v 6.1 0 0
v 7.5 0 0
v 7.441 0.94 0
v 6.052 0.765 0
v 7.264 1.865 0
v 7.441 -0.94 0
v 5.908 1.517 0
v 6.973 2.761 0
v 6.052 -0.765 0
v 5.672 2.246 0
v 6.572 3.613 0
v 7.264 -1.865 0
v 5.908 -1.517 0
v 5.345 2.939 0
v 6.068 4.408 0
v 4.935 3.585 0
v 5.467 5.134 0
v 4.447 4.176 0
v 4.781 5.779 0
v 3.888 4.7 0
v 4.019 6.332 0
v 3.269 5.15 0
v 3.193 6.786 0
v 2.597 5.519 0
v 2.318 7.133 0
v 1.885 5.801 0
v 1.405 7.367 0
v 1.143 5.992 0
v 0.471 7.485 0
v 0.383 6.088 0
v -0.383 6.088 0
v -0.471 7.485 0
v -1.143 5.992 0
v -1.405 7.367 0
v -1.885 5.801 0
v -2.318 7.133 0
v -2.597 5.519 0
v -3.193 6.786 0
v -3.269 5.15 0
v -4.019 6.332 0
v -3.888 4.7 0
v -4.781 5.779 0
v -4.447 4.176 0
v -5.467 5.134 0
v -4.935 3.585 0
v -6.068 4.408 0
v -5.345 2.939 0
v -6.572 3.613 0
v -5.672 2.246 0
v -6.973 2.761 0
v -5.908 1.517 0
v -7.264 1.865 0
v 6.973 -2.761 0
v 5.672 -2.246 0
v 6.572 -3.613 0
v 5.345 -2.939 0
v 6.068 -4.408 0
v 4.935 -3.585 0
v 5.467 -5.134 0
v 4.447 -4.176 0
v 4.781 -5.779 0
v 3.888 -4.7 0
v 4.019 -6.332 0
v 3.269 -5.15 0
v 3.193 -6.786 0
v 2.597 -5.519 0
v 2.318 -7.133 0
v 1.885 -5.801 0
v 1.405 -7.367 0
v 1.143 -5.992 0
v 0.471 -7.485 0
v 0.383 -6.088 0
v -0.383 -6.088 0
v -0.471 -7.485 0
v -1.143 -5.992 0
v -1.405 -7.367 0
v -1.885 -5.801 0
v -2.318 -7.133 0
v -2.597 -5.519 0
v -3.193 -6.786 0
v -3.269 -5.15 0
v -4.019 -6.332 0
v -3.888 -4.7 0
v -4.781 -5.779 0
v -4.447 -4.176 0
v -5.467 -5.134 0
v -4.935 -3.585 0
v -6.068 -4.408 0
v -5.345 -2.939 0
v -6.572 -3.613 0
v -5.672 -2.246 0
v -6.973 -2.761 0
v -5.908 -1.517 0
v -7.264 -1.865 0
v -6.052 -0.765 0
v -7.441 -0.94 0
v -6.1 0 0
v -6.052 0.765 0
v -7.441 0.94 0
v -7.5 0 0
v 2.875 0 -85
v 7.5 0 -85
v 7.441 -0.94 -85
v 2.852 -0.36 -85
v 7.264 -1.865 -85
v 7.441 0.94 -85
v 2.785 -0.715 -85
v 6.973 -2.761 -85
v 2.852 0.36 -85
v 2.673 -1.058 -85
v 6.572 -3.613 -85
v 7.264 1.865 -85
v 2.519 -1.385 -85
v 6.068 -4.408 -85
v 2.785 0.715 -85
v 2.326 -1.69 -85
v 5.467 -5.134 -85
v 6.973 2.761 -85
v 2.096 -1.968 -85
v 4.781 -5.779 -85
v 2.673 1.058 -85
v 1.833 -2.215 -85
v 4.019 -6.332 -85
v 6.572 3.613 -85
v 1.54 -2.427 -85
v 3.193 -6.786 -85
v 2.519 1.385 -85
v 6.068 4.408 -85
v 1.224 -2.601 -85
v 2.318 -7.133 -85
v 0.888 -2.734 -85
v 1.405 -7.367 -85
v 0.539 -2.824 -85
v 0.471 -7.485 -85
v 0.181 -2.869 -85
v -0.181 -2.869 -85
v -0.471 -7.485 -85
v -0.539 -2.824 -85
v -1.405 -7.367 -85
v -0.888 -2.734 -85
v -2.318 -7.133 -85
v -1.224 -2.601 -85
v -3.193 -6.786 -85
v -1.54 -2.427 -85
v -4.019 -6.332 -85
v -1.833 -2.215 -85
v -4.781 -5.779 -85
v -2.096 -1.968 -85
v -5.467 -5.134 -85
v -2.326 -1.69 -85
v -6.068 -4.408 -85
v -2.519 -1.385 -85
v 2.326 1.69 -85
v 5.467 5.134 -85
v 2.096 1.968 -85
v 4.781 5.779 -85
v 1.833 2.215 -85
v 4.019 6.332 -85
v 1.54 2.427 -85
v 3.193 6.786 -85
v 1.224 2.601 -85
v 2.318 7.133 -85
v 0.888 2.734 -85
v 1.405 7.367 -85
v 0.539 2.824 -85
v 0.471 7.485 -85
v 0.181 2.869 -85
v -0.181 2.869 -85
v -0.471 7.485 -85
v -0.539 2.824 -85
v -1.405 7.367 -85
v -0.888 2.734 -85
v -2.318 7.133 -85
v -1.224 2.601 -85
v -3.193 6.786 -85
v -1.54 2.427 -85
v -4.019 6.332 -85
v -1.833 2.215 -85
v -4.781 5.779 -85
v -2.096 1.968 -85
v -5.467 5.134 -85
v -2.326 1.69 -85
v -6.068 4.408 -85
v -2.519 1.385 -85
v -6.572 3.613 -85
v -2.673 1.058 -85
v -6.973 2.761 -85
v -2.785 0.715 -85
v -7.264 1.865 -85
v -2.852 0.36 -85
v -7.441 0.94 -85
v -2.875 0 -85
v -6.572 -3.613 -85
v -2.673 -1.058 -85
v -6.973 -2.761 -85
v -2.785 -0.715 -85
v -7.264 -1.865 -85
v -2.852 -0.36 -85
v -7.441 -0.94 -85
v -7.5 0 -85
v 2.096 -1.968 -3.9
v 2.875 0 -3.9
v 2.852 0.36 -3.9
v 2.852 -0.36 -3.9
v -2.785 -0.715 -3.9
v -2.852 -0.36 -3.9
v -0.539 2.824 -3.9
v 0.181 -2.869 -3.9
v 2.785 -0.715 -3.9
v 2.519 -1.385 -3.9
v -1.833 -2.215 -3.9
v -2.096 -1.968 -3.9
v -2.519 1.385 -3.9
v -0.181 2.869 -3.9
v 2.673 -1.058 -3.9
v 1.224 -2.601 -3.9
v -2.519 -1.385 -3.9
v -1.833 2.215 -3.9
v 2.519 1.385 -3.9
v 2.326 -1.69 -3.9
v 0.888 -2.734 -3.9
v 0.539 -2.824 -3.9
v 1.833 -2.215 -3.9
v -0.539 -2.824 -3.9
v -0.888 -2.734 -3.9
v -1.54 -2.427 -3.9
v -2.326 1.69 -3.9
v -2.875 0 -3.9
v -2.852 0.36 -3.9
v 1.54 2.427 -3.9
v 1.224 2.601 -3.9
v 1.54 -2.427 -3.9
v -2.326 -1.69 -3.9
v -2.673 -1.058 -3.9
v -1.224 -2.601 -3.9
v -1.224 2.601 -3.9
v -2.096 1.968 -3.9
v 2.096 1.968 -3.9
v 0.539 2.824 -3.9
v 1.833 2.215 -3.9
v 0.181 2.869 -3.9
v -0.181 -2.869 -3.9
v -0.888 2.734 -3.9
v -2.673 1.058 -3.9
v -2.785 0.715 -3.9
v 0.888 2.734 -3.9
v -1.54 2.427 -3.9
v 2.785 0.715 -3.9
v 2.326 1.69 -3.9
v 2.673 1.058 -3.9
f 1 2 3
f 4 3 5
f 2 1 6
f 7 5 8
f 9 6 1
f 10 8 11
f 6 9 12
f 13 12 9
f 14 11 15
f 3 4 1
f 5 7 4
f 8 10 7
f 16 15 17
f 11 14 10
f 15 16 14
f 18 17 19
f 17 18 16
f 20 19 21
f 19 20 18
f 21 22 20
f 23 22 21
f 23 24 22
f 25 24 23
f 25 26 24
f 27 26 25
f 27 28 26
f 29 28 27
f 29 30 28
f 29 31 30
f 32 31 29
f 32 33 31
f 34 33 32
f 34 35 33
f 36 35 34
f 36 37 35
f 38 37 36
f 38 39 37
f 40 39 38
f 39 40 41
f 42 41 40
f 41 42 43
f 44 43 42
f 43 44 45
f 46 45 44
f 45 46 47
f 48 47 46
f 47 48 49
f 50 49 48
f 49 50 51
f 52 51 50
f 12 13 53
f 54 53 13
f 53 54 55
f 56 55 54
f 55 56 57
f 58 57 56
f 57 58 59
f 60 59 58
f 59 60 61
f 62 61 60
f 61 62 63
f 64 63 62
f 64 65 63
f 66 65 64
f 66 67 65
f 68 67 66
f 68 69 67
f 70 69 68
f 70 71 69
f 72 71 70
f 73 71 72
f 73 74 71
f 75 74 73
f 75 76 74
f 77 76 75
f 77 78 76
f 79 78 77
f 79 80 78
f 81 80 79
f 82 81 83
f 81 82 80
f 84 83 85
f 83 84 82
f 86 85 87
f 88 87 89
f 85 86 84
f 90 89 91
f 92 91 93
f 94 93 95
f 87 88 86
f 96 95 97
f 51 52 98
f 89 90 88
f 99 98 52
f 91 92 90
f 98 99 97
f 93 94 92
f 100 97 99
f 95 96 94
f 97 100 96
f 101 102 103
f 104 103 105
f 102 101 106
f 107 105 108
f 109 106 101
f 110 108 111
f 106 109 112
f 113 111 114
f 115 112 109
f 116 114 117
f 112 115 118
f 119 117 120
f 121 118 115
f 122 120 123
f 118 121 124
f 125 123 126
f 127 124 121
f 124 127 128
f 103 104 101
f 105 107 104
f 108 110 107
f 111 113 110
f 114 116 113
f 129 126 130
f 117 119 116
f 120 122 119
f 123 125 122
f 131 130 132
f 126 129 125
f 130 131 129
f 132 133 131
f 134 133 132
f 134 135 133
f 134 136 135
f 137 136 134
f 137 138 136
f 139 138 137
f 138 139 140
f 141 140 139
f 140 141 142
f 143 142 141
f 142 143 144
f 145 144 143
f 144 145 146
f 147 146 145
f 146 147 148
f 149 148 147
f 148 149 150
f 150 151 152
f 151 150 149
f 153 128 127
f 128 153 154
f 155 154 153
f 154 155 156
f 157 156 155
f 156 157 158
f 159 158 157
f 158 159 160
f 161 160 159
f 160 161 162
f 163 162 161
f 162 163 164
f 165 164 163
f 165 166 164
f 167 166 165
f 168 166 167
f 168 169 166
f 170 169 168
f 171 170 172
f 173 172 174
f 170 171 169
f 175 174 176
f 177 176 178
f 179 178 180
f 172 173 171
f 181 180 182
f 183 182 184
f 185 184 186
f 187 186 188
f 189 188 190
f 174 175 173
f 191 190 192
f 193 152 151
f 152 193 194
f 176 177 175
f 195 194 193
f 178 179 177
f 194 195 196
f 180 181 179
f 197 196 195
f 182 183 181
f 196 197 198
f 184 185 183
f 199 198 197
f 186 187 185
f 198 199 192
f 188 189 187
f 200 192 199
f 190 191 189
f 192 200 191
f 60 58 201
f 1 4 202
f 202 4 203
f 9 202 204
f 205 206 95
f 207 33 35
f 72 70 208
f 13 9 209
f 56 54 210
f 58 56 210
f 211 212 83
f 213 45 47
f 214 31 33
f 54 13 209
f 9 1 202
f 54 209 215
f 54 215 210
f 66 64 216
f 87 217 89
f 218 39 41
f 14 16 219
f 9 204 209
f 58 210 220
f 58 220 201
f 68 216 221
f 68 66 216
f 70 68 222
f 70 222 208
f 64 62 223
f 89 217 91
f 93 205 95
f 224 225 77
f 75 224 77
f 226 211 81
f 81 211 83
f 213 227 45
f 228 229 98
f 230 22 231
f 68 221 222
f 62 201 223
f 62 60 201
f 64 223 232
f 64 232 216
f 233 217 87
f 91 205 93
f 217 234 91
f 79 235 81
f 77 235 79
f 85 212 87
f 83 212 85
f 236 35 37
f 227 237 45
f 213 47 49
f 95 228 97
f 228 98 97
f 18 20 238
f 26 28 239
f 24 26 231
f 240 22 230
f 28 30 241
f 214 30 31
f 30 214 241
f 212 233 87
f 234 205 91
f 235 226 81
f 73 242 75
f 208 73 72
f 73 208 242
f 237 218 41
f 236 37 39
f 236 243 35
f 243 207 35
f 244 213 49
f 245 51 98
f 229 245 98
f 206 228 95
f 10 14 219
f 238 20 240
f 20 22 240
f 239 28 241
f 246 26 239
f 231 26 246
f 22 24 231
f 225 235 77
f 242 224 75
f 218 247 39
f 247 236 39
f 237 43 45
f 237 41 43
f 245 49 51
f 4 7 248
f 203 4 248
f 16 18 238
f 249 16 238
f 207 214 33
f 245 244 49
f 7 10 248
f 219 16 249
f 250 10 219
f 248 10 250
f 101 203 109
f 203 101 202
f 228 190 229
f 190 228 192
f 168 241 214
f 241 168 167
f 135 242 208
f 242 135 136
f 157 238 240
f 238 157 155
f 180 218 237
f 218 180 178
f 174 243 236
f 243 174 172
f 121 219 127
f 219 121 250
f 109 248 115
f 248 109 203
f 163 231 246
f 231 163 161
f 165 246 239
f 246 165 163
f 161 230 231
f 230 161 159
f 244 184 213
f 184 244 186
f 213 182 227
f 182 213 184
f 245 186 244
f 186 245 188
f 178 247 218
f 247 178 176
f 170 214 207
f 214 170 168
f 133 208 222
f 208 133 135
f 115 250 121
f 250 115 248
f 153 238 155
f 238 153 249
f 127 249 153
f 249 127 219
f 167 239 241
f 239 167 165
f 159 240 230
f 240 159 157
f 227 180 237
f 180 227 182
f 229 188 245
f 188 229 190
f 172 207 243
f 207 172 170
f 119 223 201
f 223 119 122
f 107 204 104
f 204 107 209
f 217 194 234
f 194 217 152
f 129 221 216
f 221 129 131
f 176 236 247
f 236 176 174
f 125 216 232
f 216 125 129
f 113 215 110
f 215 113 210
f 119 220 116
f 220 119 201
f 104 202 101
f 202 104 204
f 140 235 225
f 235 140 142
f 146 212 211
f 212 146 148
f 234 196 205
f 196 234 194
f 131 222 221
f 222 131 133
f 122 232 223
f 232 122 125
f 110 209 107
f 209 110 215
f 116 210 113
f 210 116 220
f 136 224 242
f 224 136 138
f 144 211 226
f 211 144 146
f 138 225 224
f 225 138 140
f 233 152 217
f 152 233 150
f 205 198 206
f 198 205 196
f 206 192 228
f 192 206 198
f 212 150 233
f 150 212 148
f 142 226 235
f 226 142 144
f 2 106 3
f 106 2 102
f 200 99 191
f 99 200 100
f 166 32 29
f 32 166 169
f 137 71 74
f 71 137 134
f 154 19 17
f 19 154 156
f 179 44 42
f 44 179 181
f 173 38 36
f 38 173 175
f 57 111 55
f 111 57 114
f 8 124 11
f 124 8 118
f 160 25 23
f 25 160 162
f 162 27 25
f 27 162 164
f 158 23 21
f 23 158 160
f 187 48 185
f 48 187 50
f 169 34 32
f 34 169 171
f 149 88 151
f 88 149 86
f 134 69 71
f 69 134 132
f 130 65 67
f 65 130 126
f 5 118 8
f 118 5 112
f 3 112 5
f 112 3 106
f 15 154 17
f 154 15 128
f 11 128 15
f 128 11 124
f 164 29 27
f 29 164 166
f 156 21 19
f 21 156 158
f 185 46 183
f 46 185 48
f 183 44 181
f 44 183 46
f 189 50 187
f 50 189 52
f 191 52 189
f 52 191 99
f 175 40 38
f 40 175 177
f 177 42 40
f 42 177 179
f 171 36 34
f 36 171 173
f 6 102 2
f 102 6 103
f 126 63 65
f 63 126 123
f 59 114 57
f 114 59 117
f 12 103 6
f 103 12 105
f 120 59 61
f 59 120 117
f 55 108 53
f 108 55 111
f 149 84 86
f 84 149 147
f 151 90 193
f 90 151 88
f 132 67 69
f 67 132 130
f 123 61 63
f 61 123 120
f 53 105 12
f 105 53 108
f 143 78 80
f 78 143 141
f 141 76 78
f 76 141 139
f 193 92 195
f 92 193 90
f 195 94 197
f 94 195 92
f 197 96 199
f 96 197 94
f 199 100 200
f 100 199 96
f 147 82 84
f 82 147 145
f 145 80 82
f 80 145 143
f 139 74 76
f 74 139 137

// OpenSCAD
$fn = 50;


difference() {
	union() {
		translate(v = [0, 0, -85.0000000000]) {
			cylinder(h = 85, r = 7.5000000000);
		}
	}
	union() {
		translate(v = [0, 0, 0]) {
			rotate(a = [0, 0, 0]) {
				difference() {
					union() {
						translate(v = [0, 0, -85.0000000000]) {
							cylinder(h = 85, r = 2.6000000000);
						}
						translate(v = [0, 0, -3.9000000000]) {
							cylinder(h = 3.9000000000, r = 7.5000000000, r1 = 2.8750000000, r2 = 6.1000000000);
						}
						translate(v = [0, 0, -85.0000000000]) {
							cylinder(h = 85, r = 2.8750000000);
						}
						translate(v = [0, 0, -85.0000000000]) {
							cylinder(h = 85, r = 2.6000000000);
						}
					}
					union();
				}
			}
		}
	}
}
